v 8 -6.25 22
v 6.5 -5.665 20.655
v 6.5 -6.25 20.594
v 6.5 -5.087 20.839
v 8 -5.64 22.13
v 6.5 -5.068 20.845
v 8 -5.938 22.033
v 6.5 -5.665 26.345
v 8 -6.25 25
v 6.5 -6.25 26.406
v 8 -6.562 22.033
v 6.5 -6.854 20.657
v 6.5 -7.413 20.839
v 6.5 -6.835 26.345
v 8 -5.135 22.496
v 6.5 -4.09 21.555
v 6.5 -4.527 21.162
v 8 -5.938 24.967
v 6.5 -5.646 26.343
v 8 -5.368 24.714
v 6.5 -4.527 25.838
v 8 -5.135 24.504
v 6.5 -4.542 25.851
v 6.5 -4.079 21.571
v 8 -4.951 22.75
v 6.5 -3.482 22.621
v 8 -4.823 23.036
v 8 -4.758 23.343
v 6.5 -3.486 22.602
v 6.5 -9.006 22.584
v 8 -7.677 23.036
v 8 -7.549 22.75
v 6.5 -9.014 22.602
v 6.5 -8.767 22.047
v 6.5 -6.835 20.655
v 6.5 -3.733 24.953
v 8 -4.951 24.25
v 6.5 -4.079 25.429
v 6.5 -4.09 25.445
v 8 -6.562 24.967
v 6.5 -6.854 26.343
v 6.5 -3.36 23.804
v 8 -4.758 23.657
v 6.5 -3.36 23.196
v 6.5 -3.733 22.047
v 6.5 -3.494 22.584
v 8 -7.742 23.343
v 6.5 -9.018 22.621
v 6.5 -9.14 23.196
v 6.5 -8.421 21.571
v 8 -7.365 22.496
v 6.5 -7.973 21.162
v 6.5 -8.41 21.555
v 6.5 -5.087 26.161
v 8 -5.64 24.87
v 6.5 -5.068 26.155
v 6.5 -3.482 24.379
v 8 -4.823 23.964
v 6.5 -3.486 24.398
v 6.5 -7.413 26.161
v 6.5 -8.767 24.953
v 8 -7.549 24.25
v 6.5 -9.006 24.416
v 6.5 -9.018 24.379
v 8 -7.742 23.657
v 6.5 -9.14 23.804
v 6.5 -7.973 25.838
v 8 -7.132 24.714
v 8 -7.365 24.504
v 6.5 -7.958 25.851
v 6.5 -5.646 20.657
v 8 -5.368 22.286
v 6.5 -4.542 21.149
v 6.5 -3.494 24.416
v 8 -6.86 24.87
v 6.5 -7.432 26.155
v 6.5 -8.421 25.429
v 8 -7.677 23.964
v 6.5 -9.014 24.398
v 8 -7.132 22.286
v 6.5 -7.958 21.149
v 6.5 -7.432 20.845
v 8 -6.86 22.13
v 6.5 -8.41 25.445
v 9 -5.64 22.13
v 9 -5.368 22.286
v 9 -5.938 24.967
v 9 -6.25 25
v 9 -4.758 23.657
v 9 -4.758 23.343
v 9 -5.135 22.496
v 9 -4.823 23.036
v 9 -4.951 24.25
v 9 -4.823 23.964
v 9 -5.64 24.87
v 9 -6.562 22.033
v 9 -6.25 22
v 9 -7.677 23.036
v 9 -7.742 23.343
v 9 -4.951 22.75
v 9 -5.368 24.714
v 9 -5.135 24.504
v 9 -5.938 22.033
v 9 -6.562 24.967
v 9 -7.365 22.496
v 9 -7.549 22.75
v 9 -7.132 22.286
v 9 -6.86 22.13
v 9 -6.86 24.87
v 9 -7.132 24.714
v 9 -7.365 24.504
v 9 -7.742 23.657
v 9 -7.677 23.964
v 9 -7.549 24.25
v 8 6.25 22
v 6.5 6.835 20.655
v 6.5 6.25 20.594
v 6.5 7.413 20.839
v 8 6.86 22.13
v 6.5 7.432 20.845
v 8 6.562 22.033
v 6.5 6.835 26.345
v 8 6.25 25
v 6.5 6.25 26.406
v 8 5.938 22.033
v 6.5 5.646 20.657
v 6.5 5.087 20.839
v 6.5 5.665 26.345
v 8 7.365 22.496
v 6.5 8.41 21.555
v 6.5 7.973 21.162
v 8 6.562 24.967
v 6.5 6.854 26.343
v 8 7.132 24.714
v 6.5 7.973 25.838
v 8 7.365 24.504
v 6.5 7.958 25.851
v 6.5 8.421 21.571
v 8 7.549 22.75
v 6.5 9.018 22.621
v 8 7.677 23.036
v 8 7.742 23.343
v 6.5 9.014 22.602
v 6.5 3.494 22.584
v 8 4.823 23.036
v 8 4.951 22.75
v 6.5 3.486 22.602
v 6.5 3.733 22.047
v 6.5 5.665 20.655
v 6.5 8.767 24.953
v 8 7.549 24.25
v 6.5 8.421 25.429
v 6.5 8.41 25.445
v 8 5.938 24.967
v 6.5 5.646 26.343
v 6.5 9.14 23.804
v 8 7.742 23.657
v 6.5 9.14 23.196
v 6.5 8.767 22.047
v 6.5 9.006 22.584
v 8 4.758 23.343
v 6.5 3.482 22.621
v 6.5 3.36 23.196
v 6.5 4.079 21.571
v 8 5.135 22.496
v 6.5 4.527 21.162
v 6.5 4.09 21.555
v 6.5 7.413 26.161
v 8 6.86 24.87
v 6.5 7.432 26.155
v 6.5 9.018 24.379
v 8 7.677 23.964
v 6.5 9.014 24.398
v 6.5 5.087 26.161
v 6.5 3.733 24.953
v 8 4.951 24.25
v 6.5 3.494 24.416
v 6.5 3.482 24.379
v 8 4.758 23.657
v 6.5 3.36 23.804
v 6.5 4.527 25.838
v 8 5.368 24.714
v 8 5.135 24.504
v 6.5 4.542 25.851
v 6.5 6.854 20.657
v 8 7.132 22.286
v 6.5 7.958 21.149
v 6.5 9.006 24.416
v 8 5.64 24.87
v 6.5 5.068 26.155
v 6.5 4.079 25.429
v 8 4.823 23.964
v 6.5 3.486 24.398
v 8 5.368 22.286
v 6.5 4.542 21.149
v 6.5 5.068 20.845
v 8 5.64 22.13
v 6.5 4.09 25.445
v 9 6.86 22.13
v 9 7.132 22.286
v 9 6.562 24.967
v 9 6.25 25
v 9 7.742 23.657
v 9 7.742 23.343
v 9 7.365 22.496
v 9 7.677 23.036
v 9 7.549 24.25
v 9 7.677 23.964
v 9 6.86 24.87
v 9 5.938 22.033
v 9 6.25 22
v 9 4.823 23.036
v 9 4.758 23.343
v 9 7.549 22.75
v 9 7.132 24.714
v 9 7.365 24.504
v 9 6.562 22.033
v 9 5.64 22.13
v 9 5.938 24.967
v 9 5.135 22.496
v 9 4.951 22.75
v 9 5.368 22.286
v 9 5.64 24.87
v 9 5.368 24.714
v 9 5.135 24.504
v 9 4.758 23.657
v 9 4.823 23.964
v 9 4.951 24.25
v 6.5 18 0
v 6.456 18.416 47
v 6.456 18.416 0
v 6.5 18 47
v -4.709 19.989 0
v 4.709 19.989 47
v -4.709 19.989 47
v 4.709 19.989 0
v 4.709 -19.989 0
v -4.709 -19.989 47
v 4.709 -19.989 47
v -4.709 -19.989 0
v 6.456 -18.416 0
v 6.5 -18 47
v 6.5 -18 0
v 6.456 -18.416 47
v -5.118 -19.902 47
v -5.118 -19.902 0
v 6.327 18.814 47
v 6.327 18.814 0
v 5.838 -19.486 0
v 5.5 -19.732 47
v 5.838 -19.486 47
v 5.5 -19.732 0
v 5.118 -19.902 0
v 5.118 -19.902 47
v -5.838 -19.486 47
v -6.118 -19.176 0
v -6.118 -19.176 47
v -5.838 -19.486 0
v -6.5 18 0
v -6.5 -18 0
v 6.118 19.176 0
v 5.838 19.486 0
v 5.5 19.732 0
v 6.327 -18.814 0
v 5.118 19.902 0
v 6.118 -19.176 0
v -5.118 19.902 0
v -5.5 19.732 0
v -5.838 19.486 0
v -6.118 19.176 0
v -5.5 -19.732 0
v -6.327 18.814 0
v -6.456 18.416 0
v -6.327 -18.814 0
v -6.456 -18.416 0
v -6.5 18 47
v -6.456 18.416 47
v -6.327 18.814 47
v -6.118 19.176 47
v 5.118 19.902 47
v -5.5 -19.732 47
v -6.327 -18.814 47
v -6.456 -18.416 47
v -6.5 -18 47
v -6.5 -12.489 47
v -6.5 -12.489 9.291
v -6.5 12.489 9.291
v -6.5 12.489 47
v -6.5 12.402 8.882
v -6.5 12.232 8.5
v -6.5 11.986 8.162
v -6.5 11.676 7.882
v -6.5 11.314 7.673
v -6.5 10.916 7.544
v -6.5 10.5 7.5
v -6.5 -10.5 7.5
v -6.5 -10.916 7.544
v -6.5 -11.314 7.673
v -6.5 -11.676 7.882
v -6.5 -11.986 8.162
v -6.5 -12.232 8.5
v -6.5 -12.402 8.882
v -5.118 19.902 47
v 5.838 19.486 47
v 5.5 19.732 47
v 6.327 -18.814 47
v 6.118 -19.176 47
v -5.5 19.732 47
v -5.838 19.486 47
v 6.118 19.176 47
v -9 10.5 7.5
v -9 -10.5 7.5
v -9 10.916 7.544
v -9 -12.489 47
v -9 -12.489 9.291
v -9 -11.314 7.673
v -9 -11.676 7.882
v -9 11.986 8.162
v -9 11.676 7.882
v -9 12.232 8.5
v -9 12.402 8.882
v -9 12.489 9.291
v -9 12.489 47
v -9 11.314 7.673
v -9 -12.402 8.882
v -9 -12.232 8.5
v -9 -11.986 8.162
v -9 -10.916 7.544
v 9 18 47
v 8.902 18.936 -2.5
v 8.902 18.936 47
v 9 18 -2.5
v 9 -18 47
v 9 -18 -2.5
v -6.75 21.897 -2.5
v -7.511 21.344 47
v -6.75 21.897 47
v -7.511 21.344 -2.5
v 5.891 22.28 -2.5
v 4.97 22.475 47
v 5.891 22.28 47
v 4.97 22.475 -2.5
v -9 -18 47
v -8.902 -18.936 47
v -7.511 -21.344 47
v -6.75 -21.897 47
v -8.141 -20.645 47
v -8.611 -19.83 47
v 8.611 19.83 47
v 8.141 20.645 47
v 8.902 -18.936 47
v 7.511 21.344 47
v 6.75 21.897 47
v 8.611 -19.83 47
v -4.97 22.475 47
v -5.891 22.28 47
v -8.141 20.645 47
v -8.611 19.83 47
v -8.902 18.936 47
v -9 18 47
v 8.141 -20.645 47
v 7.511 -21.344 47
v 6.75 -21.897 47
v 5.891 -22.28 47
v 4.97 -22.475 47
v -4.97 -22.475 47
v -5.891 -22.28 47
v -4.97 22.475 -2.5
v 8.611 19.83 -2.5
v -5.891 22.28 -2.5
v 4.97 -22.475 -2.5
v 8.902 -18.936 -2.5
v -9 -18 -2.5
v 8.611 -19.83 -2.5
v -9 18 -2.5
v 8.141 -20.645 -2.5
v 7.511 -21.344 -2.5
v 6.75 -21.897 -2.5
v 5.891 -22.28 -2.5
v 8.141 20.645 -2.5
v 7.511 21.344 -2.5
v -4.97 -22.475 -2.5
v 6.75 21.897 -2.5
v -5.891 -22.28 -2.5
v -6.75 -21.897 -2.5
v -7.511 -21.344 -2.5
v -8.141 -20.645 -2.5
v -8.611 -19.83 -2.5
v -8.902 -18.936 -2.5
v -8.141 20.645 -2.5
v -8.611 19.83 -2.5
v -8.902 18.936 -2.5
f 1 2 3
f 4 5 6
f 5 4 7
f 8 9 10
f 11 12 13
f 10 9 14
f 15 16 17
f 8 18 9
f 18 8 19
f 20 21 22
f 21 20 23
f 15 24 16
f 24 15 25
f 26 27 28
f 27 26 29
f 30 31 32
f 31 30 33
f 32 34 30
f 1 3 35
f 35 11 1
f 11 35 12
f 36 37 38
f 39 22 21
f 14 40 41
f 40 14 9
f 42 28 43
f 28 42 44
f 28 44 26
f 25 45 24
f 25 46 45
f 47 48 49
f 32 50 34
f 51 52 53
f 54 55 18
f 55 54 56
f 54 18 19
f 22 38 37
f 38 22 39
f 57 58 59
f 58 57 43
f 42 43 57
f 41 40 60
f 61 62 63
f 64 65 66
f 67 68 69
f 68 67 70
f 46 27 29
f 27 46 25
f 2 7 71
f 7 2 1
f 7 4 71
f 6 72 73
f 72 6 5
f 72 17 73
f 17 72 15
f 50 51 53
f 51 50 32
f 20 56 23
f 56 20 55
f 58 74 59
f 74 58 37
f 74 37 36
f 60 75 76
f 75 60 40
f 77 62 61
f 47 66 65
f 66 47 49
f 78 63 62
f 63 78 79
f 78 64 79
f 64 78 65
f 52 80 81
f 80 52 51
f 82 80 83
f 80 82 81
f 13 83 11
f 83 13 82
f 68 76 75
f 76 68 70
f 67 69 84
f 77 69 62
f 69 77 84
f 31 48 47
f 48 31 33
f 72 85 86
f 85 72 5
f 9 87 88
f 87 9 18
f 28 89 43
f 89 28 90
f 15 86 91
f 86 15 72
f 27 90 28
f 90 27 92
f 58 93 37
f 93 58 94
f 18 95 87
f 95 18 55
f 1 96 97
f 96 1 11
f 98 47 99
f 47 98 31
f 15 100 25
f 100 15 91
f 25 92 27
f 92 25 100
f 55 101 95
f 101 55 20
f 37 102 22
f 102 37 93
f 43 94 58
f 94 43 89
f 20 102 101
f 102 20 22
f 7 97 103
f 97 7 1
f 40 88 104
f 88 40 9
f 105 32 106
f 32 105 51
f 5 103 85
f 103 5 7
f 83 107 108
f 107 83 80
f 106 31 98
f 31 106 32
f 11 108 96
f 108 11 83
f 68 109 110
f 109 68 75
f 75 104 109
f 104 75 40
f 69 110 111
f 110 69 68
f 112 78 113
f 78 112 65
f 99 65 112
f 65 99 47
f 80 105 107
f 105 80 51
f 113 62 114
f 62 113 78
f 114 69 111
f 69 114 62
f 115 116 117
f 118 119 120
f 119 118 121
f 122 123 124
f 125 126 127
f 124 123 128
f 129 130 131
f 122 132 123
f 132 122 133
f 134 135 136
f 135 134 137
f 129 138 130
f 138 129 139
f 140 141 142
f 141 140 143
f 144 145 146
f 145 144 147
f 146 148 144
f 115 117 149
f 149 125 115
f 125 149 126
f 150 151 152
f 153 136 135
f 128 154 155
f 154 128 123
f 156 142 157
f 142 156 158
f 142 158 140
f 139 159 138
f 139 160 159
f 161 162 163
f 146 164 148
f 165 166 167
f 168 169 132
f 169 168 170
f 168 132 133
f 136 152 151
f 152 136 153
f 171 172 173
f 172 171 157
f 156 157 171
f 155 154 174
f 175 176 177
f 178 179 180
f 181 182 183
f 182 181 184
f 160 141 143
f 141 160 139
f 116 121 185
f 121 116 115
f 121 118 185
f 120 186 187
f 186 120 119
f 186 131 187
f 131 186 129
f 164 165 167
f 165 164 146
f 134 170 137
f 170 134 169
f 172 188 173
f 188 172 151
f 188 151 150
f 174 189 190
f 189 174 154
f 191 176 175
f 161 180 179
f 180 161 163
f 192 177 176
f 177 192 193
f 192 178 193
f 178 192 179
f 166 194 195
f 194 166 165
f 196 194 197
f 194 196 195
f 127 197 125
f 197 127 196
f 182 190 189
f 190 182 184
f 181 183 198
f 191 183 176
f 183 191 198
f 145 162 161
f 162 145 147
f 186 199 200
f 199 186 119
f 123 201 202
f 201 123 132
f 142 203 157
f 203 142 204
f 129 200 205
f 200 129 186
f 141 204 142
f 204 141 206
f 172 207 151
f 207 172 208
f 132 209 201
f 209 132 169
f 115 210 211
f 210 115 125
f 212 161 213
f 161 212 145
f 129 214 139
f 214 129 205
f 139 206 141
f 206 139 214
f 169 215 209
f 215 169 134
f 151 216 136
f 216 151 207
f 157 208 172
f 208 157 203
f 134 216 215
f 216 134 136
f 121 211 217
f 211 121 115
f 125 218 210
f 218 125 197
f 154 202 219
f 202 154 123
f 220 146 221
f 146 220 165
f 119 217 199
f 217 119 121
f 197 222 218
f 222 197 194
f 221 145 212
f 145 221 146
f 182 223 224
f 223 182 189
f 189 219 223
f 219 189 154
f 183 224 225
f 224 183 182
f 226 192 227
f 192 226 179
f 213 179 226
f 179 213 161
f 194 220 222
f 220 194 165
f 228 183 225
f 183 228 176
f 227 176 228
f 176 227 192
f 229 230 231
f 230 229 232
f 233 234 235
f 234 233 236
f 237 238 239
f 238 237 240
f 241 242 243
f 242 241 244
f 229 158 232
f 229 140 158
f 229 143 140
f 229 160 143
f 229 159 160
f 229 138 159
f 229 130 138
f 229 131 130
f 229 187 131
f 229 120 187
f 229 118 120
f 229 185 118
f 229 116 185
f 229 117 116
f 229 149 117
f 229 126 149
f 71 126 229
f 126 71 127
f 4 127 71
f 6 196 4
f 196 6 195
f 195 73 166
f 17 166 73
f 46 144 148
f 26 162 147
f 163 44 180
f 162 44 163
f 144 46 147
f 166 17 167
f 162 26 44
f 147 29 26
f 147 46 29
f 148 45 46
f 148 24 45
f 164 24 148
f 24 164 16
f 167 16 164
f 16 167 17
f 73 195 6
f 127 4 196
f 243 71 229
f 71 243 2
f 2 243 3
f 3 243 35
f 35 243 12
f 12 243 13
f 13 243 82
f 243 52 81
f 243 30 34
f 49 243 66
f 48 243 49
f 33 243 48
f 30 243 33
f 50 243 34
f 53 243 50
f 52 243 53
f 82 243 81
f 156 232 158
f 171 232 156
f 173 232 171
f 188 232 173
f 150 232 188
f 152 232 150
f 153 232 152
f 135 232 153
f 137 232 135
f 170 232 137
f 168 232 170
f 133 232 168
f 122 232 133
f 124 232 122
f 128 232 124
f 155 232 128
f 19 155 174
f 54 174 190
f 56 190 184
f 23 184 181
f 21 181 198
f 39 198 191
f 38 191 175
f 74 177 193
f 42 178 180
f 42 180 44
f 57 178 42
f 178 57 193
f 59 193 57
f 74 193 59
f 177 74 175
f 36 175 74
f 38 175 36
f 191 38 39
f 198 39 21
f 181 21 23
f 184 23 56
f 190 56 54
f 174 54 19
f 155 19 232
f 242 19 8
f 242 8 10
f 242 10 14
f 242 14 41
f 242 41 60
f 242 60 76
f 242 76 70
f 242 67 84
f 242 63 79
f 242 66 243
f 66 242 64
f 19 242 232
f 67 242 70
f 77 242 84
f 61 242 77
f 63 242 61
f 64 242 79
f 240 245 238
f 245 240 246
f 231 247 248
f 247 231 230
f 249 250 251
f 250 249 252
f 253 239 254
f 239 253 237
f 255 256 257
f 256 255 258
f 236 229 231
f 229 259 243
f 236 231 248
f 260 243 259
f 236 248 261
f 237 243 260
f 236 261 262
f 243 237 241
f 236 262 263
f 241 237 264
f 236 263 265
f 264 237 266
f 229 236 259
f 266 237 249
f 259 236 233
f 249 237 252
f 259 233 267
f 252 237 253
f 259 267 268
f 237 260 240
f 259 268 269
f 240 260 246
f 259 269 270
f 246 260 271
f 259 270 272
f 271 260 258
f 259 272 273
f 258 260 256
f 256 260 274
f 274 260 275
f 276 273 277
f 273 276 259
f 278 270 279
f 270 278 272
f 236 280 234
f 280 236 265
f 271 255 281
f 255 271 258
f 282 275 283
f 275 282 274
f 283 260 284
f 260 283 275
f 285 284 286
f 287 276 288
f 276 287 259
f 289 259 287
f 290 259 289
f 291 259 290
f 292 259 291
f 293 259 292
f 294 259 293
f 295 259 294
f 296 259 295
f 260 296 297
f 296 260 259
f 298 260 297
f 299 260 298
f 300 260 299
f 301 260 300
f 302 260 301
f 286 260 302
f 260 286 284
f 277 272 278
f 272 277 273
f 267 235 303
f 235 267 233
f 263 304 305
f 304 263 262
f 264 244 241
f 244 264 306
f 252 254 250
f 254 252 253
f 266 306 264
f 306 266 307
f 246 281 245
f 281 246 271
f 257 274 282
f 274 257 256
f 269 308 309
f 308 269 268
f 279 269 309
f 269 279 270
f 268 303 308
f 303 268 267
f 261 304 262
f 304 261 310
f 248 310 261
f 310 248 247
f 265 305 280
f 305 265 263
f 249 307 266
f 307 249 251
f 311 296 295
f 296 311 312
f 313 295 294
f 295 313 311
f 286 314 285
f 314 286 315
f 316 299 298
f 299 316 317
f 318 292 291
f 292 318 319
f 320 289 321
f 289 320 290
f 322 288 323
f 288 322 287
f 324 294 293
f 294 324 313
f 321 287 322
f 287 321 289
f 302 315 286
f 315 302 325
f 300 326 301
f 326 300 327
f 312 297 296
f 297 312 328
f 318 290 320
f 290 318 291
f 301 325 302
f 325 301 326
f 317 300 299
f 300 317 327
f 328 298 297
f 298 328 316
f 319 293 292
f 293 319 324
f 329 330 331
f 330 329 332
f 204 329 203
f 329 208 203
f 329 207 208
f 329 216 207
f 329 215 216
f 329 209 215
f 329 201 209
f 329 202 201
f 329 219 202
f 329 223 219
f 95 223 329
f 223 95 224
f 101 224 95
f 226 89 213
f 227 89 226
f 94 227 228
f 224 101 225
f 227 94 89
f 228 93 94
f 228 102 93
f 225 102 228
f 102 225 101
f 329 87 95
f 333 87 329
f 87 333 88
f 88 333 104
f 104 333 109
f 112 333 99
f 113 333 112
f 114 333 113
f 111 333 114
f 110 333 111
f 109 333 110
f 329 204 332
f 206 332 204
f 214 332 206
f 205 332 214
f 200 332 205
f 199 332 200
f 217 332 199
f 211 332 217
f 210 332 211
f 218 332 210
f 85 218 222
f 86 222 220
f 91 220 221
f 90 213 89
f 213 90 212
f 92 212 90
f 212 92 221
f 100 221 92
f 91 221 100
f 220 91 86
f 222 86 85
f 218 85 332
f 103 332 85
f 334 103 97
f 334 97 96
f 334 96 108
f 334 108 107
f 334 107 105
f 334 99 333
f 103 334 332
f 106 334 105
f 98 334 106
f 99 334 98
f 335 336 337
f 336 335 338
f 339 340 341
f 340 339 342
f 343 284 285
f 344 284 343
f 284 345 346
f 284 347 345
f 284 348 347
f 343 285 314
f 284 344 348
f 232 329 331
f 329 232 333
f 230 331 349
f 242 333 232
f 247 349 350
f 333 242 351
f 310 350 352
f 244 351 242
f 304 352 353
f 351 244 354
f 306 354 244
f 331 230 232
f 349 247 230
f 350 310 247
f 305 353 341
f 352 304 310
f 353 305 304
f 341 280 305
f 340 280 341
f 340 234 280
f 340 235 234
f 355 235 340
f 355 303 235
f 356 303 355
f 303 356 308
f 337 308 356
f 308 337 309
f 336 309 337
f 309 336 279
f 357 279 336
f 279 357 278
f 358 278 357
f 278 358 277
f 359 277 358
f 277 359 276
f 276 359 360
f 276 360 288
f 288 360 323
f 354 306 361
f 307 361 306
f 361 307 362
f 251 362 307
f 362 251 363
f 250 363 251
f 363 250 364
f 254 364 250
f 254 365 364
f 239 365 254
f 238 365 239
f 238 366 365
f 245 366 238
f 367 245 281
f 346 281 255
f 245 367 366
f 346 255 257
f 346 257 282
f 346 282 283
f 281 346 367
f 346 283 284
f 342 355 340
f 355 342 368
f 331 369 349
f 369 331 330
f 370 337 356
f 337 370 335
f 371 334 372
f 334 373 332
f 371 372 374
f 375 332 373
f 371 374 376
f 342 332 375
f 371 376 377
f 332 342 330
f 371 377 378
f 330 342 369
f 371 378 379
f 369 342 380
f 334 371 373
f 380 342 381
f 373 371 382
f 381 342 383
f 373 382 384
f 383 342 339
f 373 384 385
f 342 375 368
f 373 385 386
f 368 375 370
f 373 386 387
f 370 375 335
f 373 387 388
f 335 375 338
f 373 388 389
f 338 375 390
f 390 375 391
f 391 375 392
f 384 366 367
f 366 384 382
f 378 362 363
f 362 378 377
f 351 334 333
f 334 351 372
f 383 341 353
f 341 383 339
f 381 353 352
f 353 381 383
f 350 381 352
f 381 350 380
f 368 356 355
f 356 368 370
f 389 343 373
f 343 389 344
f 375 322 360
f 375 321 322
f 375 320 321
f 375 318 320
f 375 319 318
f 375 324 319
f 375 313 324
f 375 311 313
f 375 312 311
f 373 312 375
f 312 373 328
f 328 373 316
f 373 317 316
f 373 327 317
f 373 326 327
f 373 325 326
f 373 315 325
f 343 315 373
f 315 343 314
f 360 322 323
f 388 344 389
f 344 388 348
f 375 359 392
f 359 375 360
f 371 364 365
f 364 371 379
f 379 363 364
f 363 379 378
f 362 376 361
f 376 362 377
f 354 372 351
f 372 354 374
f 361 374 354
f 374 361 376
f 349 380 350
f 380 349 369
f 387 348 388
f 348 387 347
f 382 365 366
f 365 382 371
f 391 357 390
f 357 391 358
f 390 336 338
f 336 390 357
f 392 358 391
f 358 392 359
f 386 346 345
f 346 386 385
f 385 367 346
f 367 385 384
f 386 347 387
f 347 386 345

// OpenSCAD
//
//  wall holder for aircond remote control
//
//  design by egil kvaleberg, 5 october 2016
//
//  added support for chamfer
//

// size of compartment
comp_w = 40;
comp_d = 13;
comp_h = 47;

// width of front slot
slot_w = 25;

// width of slot lower lip
slot_lower = 7.5; 

// corner radius of compartment
corner_r = 2;
// wall thickness of comparement
wall = 2.5;

// chamfer for top entry and bottom (typical value is 0.6)
chamfer = 0.0; // [0.0:0.1:2.0]
// diameter of mounting screws
mnt_dia = 2.5;

// generic tolerance
tol = 0.25;

d = 1*0.1;

module add() {
    // chamfered bottom section
    if (chamfer > 0) hull() for (sx = [-1,1]) for (sy = [-1,1]) 
        translate([sx*(comp_d/2-corner_r),sy*(comp_w/2-corner_r),-wall]) {
            cylinder(r1=wall+corner_r-chamfer, r2=wall+corner_r, h=chamfer, $fn=30);
        }   
    // main section    
    hull() for (sx = [-1,1]) for (sy = [-1,1]) 
        translate([sx*(comp_d/2-corner_r),sy*(comp_w/2-corner_r),chamfer-wall]) {
            cylinder(r=wall+corner_r, h=wall+comp_h-chamfer, $fn=30);
        }   
}

module sub() {
    // main compartment 
    hull () for (sx = [-1,1]) for (sy = [-1,1]) 
        translate([sx*(comp_d/2-corner_r),sy*(comp_w/2-corner_r),0]) {
            cylinder(r=corner_r, h=comp_h+d, $fn=30);
    }
    
    // main compartment, chamfered section
    if (chamfer > 0) hull () for (sx = [-1,1]) for (sy = [-1,1]) 
        translate([sx*(comp_d/2-corner_r),sy*(comp_w/2-corner_r),comp_h-chamfer]) {
            translate([0,0,]) cylinder(r1=corner_r, r2=corner_r+chamfer+d, h=chamfer+d, $fn=30);
    }
    // slot in front
    translate ([0,0,slot_lower+comp_h/2]) rotate([0,-90,0]) hull () for (sx = [-1,1]) for (sy = [-1,1]) 
        translate([sx*(comp_h/2-corner_r),sy*(slot_w/2-corner_r),0]) {
            cylinder(r=corner_r, h=comp_h+d, $fn=30);
    }
    // mounting holes
    translate ([comp_d/2-d,0,comp_h/2]) rotate([0,90,0]) for (sy = [-1,1]) 
        translate([0,sy*slot_w/4,0]) {
            cylinder(d1=mnt_dia+2*tol+2*wall*0.6, d2=mnt_dia+2*tol, h=d+wall*0.6, $fn=30);
            cylinder(d=mnt_dia+2*tol, h=d+wall+d, $fn=30);
    }   
}
    // mounting holes
    if (0) color("red") translate ([comp_d/2-d,0,comp_h/2]) rotate([0,90,0]) for (sy = [-1,1]) 
        translate([0,sy*slot_w/4,0]) {
            cylinder(d=mnt_dia+2*tol, h=d+wall+d, $fn=30);
    } 

    // main structure:
    difference () {
        add();
        difference () {
            sub();           
        }
    }
